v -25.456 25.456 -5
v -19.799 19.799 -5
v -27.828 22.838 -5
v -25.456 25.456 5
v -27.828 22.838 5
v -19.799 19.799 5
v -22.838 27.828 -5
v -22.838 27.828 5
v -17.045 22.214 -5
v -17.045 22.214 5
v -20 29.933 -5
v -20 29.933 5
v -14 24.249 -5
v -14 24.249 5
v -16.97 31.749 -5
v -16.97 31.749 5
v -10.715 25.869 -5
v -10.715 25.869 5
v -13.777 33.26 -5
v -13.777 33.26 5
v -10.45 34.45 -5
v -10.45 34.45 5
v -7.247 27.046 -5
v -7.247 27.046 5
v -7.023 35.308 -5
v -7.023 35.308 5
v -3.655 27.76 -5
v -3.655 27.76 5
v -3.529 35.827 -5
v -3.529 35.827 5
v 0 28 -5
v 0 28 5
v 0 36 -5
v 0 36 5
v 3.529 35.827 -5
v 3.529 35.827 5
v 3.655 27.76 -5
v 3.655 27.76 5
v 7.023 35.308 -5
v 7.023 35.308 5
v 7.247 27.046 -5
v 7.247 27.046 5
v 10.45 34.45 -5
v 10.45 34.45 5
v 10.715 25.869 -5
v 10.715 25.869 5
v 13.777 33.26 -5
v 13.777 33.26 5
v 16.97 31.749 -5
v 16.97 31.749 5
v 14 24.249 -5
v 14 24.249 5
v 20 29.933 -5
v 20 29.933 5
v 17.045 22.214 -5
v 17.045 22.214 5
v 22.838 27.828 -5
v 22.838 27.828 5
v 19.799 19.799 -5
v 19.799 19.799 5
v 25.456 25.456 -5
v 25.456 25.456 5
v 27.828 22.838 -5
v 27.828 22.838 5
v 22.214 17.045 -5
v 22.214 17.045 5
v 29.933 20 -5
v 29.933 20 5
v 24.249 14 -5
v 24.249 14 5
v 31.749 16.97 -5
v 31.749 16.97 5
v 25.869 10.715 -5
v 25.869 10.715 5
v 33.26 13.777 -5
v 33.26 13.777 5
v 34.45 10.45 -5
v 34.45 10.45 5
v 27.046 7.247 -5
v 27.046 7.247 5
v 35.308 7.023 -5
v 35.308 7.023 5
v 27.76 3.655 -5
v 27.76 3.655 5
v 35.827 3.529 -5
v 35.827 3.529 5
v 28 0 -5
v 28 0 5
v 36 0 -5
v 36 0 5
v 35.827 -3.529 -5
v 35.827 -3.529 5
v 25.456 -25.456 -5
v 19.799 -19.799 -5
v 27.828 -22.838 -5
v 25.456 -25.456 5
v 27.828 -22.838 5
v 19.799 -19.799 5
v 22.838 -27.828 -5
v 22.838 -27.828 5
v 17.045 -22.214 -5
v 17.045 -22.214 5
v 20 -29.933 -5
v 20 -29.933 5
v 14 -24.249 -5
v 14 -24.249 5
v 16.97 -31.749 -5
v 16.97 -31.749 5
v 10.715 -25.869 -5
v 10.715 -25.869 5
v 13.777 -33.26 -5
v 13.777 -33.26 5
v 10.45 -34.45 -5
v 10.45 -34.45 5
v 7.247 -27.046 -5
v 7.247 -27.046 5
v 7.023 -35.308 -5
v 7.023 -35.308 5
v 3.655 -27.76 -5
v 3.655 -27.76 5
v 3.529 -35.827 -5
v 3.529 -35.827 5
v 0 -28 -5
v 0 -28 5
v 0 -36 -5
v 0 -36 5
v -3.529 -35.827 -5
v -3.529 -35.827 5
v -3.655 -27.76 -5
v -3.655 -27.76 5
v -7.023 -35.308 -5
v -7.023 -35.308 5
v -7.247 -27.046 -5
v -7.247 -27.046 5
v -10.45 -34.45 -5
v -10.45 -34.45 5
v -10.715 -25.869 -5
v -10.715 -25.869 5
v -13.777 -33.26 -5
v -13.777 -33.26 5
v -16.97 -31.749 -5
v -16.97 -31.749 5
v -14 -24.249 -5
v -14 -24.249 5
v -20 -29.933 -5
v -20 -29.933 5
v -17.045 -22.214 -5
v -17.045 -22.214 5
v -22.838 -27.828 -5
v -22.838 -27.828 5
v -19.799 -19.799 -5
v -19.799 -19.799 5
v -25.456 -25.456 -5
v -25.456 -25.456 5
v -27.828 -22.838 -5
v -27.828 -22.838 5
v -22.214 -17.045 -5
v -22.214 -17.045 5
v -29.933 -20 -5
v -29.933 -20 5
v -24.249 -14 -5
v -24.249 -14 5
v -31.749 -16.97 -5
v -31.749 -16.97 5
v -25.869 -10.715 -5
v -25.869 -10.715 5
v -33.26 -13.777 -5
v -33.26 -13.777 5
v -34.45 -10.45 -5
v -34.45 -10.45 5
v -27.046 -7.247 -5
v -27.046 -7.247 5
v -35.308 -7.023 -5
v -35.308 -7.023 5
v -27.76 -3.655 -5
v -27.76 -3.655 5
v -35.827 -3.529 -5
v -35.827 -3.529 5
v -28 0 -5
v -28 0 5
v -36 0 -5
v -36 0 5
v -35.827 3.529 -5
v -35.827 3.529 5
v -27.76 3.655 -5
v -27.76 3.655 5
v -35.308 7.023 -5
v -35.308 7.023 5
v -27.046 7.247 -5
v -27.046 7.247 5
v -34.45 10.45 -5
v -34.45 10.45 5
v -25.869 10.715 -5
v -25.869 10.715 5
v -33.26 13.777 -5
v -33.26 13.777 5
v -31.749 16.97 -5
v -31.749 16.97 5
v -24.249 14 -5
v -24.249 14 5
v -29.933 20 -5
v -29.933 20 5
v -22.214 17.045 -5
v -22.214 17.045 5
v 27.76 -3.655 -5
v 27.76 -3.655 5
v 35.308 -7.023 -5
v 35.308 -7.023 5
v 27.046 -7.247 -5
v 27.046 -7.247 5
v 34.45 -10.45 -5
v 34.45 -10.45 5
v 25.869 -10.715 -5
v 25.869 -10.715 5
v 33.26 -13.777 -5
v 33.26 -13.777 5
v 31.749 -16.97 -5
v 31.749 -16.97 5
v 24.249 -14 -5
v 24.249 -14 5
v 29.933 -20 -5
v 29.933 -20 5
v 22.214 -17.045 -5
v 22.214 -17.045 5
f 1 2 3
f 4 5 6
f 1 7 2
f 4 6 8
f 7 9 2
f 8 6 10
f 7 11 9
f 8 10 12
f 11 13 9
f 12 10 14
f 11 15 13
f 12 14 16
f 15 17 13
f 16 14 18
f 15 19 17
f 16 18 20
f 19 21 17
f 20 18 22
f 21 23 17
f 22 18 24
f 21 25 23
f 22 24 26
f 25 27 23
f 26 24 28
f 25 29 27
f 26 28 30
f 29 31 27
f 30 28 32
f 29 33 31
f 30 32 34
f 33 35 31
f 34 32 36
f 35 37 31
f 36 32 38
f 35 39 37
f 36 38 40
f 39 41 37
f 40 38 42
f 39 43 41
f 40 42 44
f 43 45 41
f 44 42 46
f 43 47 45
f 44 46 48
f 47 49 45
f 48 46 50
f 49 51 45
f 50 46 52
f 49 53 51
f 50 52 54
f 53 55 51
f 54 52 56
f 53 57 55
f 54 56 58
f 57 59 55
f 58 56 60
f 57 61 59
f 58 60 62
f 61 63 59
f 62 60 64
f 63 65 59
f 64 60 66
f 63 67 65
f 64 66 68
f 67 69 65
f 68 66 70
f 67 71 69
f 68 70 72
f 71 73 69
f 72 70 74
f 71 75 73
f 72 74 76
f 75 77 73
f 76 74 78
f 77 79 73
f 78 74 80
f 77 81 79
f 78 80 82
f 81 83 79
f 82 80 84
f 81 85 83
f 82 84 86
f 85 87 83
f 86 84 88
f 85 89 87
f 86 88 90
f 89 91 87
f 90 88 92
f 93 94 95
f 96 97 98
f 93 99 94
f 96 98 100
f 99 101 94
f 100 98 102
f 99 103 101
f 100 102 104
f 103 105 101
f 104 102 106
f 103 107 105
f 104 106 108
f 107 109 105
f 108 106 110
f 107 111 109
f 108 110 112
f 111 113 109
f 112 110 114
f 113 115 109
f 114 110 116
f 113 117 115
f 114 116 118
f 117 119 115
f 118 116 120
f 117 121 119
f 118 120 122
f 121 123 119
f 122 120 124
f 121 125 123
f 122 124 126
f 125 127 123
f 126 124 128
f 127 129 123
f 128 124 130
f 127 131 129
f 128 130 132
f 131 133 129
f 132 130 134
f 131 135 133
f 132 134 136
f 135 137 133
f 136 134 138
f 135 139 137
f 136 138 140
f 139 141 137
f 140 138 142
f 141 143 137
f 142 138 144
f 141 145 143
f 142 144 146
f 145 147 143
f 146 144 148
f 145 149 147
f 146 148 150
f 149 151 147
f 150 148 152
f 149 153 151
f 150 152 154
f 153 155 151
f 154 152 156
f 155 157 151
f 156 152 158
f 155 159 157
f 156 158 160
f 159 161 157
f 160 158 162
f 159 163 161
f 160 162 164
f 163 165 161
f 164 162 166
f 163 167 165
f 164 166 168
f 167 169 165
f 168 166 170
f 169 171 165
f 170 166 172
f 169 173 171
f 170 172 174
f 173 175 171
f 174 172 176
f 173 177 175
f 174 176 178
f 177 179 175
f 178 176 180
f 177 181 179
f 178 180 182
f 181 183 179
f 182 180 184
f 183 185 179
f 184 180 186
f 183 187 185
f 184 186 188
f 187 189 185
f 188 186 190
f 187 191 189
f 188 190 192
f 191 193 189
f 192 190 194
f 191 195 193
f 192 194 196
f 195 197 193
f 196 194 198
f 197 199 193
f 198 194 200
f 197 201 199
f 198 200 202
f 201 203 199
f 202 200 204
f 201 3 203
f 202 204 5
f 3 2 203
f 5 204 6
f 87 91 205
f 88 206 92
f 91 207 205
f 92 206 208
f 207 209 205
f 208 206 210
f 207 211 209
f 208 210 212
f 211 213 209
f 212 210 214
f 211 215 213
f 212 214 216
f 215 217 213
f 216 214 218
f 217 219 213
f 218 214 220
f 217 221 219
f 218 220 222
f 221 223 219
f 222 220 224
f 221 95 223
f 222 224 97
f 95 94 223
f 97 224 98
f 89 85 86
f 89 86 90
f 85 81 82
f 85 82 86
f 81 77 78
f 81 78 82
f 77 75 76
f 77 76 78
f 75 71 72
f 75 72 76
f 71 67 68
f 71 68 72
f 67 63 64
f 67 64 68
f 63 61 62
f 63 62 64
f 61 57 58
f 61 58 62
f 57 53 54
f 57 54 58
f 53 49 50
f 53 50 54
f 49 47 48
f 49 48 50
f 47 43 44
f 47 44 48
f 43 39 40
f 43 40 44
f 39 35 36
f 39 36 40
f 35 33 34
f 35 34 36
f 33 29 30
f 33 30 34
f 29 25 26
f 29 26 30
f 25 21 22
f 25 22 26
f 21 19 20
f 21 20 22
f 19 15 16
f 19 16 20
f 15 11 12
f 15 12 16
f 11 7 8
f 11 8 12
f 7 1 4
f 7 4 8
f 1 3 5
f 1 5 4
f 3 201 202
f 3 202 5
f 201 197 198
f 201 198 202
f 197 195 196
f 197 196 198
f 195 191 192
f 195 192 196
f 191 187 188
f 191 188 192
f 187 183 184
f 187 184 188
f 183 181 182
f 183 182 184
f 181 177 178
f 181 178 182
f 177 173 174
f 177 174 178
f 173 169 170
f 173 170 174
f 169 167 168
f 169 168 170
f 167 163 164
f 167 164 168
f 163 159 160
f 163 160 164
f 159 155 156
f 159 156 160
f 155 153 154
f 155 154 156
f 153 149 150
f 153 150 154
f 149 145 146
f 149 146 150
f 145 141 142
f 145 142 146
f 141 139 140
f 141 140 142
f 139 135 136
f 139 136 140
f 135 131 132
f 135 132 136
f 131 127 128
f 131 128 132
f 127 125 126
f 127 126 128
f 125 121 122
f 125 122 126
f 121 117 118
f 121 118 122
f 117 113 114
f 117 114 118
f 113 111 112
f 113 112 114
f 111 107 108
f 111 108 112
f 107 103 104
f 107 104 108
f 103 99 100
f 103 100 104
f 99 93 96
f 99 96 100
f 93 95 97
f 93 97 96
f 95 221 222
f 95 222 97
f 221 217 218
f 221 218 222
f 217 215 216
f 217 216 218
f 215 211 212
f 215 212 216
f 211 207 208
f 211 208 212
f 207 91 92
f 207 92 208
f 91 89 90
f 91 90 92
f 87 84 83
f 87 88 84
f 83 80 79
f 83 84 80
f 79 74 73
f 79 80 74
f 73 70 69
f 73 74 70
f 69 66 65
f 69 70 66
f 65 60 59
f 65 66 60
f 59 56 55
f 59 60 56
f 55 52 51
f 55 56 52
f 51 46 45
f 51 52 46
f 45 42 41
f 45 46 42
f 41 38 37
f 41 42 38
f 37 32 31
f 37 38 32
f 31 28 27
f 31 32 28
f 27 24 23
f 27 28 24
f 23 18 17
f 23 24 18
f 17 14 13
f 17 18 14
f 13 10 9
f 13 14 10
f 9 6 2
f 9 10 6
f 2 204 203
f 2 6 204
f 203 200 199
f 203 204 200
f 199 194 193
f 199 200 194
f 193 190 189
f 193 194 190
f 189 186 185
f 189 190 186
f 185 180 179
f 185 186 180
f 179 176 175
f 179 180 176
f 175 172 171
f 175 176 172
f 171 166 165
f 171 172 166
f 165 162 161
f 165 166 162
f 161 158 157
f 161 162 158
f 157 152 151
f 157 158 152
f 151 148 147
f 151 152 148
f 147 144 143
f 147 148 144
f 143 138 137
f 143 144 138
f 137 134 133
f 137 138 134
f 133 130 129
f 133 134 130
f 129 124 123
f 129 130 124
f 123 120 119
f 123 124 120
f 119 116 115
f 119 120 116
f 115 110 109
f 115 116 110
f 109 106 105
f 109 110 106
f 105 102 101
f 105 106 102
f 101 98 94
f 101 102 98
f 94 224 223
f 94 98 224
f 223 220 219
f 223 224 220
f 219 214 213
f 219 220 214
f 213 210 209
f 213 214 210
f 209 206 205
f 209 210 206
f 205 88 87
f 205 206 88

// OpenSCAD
polyhedron(points=[[-25.455844, 25.455844, -5.0], [-27.828376, 22.838158, -5.0], [-19.79899, 19.79899, -5.0], [-25.455844, 25.455844, 5.0], [-27.828376, 22.838158, 5.0], [-19.79899, 19.79899, 5.0], [-22.838158, 27.828376, -5.0], [-22.838158, 27.828376, 5.0], [-17.04532, 22.213894, -5.0], [-17.04532, 22.213894, 5.0], [-20.000528, 29.932906, -5.0], [-20.000528, 29.932906, 5.0], [-14.0, 24.248711, -5.0], [-14.0, 24.248711, 5.0], [-16.970283, 31.749166, -5.0], [-16.970283, 31.749166, 5.0], [-10.715136, 25.868627, -5.0], [-10.715136, 25.868627, 5.0], [-13.776604, 33.259663, -5.0], [-13.776604, 33.259663, 5.0], [-10.450248, 34.449852, -5.0], [-10.450248, 34.449852, 5.0], [-7.246933, 27.045923, -5.0], [-7.246933, 27.045923, 5.0], [-7.023252, 35.30827, -5.0], [-7.023252, 35.30827, 5.0], [-3.654733, 27.760456, -5.0], [-3.654733, 27.760456, 5.0], [-3.528617, 35.82665, -5.0], [-3.528617, 35.82665, 5.0], [0.0, 28.0, -5.0], [0.0, 28.0, 5.0], [0.0, 36.0, -5.0], [0.0, 36.0, 5.0], [3.528617, 35.82665, -5.0], [3.528617, 35.82665, 5.0], [3.654733, 27.760456, -5.0], [3.654733, 27.760456, 5.0], [7.023252, 35.30827, -5.0], [7.023252, 35.30827, 5.0], [7.246933, 27.045923, -5.0], [7.246933, 27.045923, 5.0], [10.450248, 34.449852, -5.0], [10.450248, 34.449852, 5.0], [10.715136, 25.868627, -5.0], [10.715136, 25.868627, 5.0], [13.776604, 33.259663, -5.0], [13.776604, 33.259663, 5.0], [16.970283, 31.749166, -5.0], [16.970283, 31.749166, 5.0], [14.0, 24.248711, -5.0], [14.0, 24.248711, 5.0], [20.000528, 29.932906, -5.0], [20.000528, 29.932906, 5.0], [17.04532, 22.213894, -5.0], [17.04532, 22.213894, 5.0], [22.838158, 27.828376, -5.0], [22.838158, 27.828376, 5.0], [19.79899, 19.79899, -5.0], [19.79899, 19.79899, 5.0], [25.455844, 25.455844, -5.0], [25.455844, 25.455844, 5.0], [27.828376, 22.838158, -5.0], [27.828376, 22.838158, 5.0], [22.213894, 17.04532, -5.0], [22.213894, 17.04532, 5.0], [29.932906, 20.000528, -5.0], [29.932906, 20.000528, 5.0], [24.248711, 14.0, -5.0], [24.248711, 14.0, 5.0], [31.749166, 16.970283, -5.0], [31.749166, 16.970283, 5.0], [25.868627, 10.715136, -5.0], [25.868627, 10.715136, 5.0], [33.259663, 13.776604, -5.0], [33.259663, 13.776604, 5.0], [34.449852, 10.450248, -5.0], [34.449852, 10.450248, 5.0], [27.045923, 7.246933, -5.0], [27.045923, 7.246933, 5.0], [35.30827, 7.023252, -5.0], [35.30827, 7.023252, 5.0], [27.760456, 3.654733, -5.0], [27.760456, 3.654733, 5.0], [35.82665, 3.528617, -5.0], [35.82665, 3.528617, 5.0], [28.0, 0.0, -5.0], [28.0, 0.0, 5.0], [36.0, 0.0, -5.0], [36.0, 0.0, 5.0], [35.82665, -3.528617, -5.0], [35.82665, -3.528617, 5.0], [25.455844, -25.455844, -5.0], [27.828376, -22.838158, -5.0], [19.79899, -19.79899, -5.0], [25.455844, -25.455844, 5.0], [27.828376, -22.838158, 5.0], [19.79899, -19.79899, 5.0], [22.838158, -27.828376, -5.0], [22.838158, -27.828376, 5.0], [17.04532, -22.213894, -5.0], [17.04532, -22.213894, 5.0], [20.000528, -29.932906, -5.0], [20.000528, -29.932906, 5.0], [14.0, -24.248711, -5.0], [14.0, -24.248711, 5.0], [16.970283, -31.749166, -5.0], [16.970283, -31.749166, 5.0], [10.715136, -25.868627, -5.0], [10.715136, -25.868627, 5.0], [13.776604, -33.259663, -5.0], [13.776604, -33.259663, 5.0], [10.450248, -34.449852, -5.0], [10.450248, -34.449852, 5.0], [7.246933, -27.045923, -5.0], [7.246933, -27.045923, 5.0], [7.023252, -35.30827, -5.0], [7.023252, -35.30827, 5.0], [3.654733, -27.760456, -5.0], [3.654733, -27.760456, 5.0], [3.528617, -35.82665, -5.0], [3.528617, -35.82665, 5.0], [-0.0, -28.0, -5.0], [-0.0, -28.0, 5.0], [-0.0, -36.0, -5.0], [-0.0, -36.0, 5.0], [-3.528617, -35.82665, -5.0], [-3.528617, -35.82665, 5.0], [-3.654733, -27.760456, -5.0], [-3.654733, -27.760456, 5.0], [-7.023252, -35.30827, -5.0], [-7.023252, -35.30827, 5.0], [-7.246933, -27.045923, -5.0], [-7.246933, -27.045923, 5.0], [-10.450248, -34.449852, -5.0], [-10.450248, -34.449852, 5.0], [-10.715136, -25.868627, -5.0], [-10.715136, -25.868627, 5.0], [-13.776604, -33.259663, -5.0], [-13.776604, -33.259663, 5.0], [-16.970283, -31.749166, -5.0], [-16.970283, -31.749166, 5.0], [-14.0, -24.248711, -5.0], [-14.0, -24.248711, 5.0], [-20.000528, -29.932906, -5.0], [-20.000528, -29.932906, 5.0], [-17.04532, -22.213894, -5.0], [-17.04532, -22.213894, 5.0], [-22.838158, -27.828376, -5.0], [-22.838158, -27.828376, 5.0], [-19.79899, -19.79899, -5.0], [-19.79899, -19.79899, 5.0], [-25.455844, -25.455844, -5.0], [-25.455844, -25.455844, 5.0], [-27.828376, -22.838158, -5.0], [-27.828376, -22.838158, 5.0], [-22.213894, -17.04532, -5.0], [-22.213894, -17.04532, 5.0], [-29.932906, -20.000528, -5.0], [-29.932906, -20.000528, 5.0], [-24.248711, -14.0, -5.0], [-24.248711, -14.0, 5.0], [-31.749166, -16.970283, -5.0], [-31.749166, -16.970283, 5.0], [-25.868627, -10.715136, -5.0], [-25.868627, -10.715136, 5.0], [-33.259663, -13.776604, -5.0], [-33.259663, -13.776604, 5.0], [-34.449852, -10.450248, -5.0], [-34.449852, -10.450248, 5.0], [-27.045923, -7.246933, -5.0], [-27.045923, -7.246933, 5.0], [-35.30827, -7.023252, -5.0], [-35.30827, -7.023252, 5.0], [-27.760456, -3.654733, -5.0], [-27.760456, -3.654733, 5.0], [-35.82665, -3.528617, -5.0], [-35.82665, -3.528617, 5.0], [-28.0, 0.0, -5.0], [-28.0, 0.0, 5.0], [-36.0, 0.0, -5.0], [-36.0, 0.0, 5.0], [-35.82665, 3.528617, -5.0], [-35.82665, 3.528617, 5.0], [-27.760456, 3.654733, -5.0], [-27.760456, 3.654733, 5.0], [-35.30827, 7.023252, -5.0], [-35.30827, 7.023252, 5.0], [-27.045923, 7.246933, -5.0], [-27.045923, 7.246933, 5.0], [-34.449852, 10.450248, -5.0], [-34.449852, 10.450248, 5.0], [-25.868627, 10.715136, -5.0], [-25.868627, 10.715136, 5.0], [-33.259663, 13.776604, -5.0], [-33.259663, 13.776604, 5.0], [-31.749166, 16.970283, -5.0], [-31.749166, 16.970283, 5.0], [-24.248711, 14.0, -5.0], [-24.248711, 14.0, 5.0], [-29.932906, 20.000528, -5.0], [-29.932906, 20.000528, 5.0], [-22.213894, 17.04532, -5.0], [-22.213894, 17.04532, 5.0], [27.760456, -3.654733, -5.0], [27.760456, -3.654733, 5.0], [35.30827, -7.023252, -5.0], [35.30827, -7.023252, 5.0], [27.045923, -7.246933, -5.0], [27.045923, -7.246933, 5.0], [34.449852, -10.450248, -5.0], [34.449852, -10.450248, 5.0], [25.868627, -10.715136, -5.0], [25.868627, -10.715136, 5.0], [33.259663, -13.776604, -5.0], [33.259663, -13.776604, 5.0], [31.749166, -16.970283, -5.0], [31.749166, -16.970283, 5.0], [24.248711, -14.0, -5.0], [24.248711, -14.0, 5.0], [29.932906, -20.000528, -5.0], [29.932906, -20.000528, 5.0], [22.213894, -17.04532, -5.0], [22.213894, -17.04532, 5.0]], faces=[[0, 2, 1], [3, 4, 5], [0, 6, 2], [3, 5, 7], [6, 8, 2], [7, 5, 9], [6, 10, 8], [7, 9, 11], [10, 12, 8], [11, 9, 13], [10, 14, 12], [11, 13, 15], [14, 16, 12], [15, 13, 17], [14, 18, 16], [15, 17, 19], [18, 20, 16], [19, 17, 21], [20, 22, 16], [21, 17, 23], [20, 24, 22], [21, 23, 25], [24, 26, 22], [25, 23, 27], [24, 28, 26], [25, 27, 29], [28, 30, 26], [29, 27, 31], [28, 32, 30], [29, 31, 33], [32, 34, 30], [33, 31, 35], [34, 36, 30], [35, 31, 37], [34, 38, 36], [35, 37, 39], [38, 40, 36], [39, 37, 41], [38, 42, 40], [39, 41, 43], [42, 44, 40], [43, 41, 45], [42, 46, 44], [43, 45, 47], [46, 48, 44], [47, 45, 49], [48, 50, 44], [49, 45, 51], [48, 52, 50], [49, 51, 53], [52, 54, 50], [53, 51, 55], [52, 56, 54], [53, 55, 57], [56, 58, 54], [57, 55, 59], [56, 60, 58], [57, 59, 61], [60, 62, 58], [61, 59, 63], [62, 64, 58], [63, 59, 65], [62, 66, 64], [63, 65, 67], [66, 68, 64], [67, 65, 69], [66, 70, 68], [67, 69, 71], [70, 72, 68], [71, 69, 73], [70, 74, 72], [71, 73, 75], [74, 76, 72], [75, 73, 77], [76, 78, 72], [77, 73, 79], [76, 80, 78], [77, 79, 81], [80, 82, 78], [81, 79, 83], [80, 84, 82], [81, 83, 85], [84, 86, 82], [85, 83, 87], [84, 88, 86], [85, 87, 89], [88, 90, 86], [89, 87, 91], [92, 94, 93], [95, 96, 97], [92, 98, 94], [95, 97, 99], [98, 100, 94], [99, 97, 101], [98, 102, 100], [99, 101, 103], [102, 104, 100], [103, 101, 105], [102, 106, 104], [103, 105, 107], [106, 108, 104], [107, 105, 109], [106, 110, 108], [107, 109, 111], [110, 112, 108], [111, 109, 113], [112, 114, 108], [113, 109, 115], [112, 116, 114], [113, 115, 117], [116, 118, 114], [117, 115, 119], [116, 120, 118], [117, 119, 121], [120, 122, 118], [121, 119, 123], [120, 124, 122], [121, 123, 125], [124, 126, 122], [125, 123, 127], [126, 128, 122], [127, 123, 129], [126, 130, 128], [127, 129, 131], [130, 132, 128], [131, 129, 133], [130, 134, 132], [131, 133, 135], [134, 136, 132], [135, 133, 137], [134, 138, 136], [135, 137, 139], [138, 140, 136], [139, 137, 141], [140, 142, 136], [141, 137, 143], [140, 144, 142], [141, 143, 145], [144, 146, 142], [145, 143, 147], [144, 148, 146], [145, 147, 149], [148, 150, 146], [149, 147, 151], [148, 152, 150], [149, 151, 153], [152, 154, 150], [153, 151, 155], [154, 156, 150], [155, 151, 157], [154, 158, 156], [155, 157, 159], [158, 160, 156], [159, 157, 161], [158, 162, 160], [159, 161, 163], [162, 164, 160], [163, 161, 165], [162, 166, 164], [163, 165, 167], [166, 168, 164], [167, 165, 169], [168, 170, 164], [169, 165, 171], [168, 172, 170], [169, 171, 173], [172, 174, 170], [173, 171, 175], [172, 176, 174], [173, 175, 177], [176, 178, 174], [177, 175, 179], [176, 180, 178], [177, 179, 181], [180, 182, 178], [181, 179, 183], [182, 184, 178], [183, 179, 185], [182, 186, 184], [183, 185, 187], [186, 188, 184], [187, 185, 189], [186, 190, 188], [187, 189, 191], [190, 192, 188], [191, 189, 193], [190, 194, 192], [191, 193, 195], [194, 196, 192], [195, 193, 197], [196, 198, 192], [197, 193, 199], [196, 200, 198], [197, 199, 201], [200, 202, 198], [201, 199, 203], [200, 1, 202], [201, 203, 4], [1, 2, 202], [4, 203, 5], [86, 90, 204], [87, 205, 91], [90, 206, 204], [91, 205, 207], [206, 208, 204], [207, 205, 209], [206, 210, 208], [207, 209, 211], [210, 212, 208], [211, 209, 213], [210, 214, 212], [211, 213, 215], [214, 216, 212], [215, 213, 217], [216, 218, 212], [217, 213, 219], [216, 220, 218], [217, 219, 221], [220, 222, 218], [221, 219, 223], [220, 93, 222], [221, 223, 96], [93, 94, 222], [96, 223, 97], [88, 84, 85], [88, 85, 89], [84, 80, 81], [84, 81, 85], [80, 76, 77], [80, 77, 81], [76, 74, 75], [76, 75, 77], [74, 70, 71], [74, 71, 75], [70, 66, 67], [70, 67, 71], [66, 62, 63], [66, 63, 67], [62, 60, 61], [62, 61, 63], [60, 56, 57], [60, 57, 61], [56, 52, 53], [56, 53, 57], [52, 48, 49], [52, 49, 53], [48, 46, 47], [48, 47, 49], [46, 42, 43], [46, 43, 47], [42, 38, 39], [42, 39, 43], [38, 34, 35], [38, 35, 39], [34, 32, 33], [34, 33, 35], [32, 28, 29], [32, 29, 33], [28, 24, 25], [28, 25, 29], [24, 20, 21], [24, 21, 25], [20, 18, 19], [20, 19, 21], [18, 14, 15], [18, 15, 19], [14, 10, 11], [14, 11, 15], [10, 6, 7], [10, 7, 11], [6, 0, 3], [6, 3, 7], [0, 1, 4], [0, 4, 3], [1, 200, 201], [1, 201, 4], [200, 196, 197], [200, 197, 201], [196, 194, 195], [196, 195, 197], [194, 190, 191], [194, 191, 195], [190, 186, 187], [190, 187, 191], [186, 182, 183], [186, 183, 187], [182, 180, 181], [182, 181, 183], [180, 176, 177], [180, 177, 181], [176, 172, 173], [176, 173, 177], [172, 168, 169], [172, 169, 173], [168, 166, 167], [168, 167, 169], [166, 162, 163], [166, 163, 167], [162, 158, 159], [162, 159, 163], [158, 154, 155], [158, 155, 159], [154, 152, 153], [154, 153, 155], [152, 148, 149], [152, 149, 153], [148, 144, 145], [148, 145, 149], [144, 140, 141], [144, 141, 145], [140, 138, 139], [140, 139, 141], [138, 134, 135], [138, 135, 139], [134, 130, 131], [134, 131, 135], [130, 126, 127], [130, 127, 131], [126, 124, 125], [126, 125, 127], [124, 120, 121], [124, 121, 125], [120, 116, 117], [120, 117, 121], [116, 112, 113], [116, 113, 117], [112, 110, 111], [112, 111, 113], [110, 106, 107], [110, 107, 111], [106, 102, 103], [106, 103, 107], [102, 98, 99], [102, 99, 103], [98, 92, 95], [98, 95, 99], [92, 93, 96], [92, 96, 95], [93, 220, 221], [93, 221, 96], [220, 216, 217], [220, 217, 221], [216, 214, 215], [216, 215, 217], [214, 210, 211], [214, 211, 215], [210, 206, 207], [210, 207, 211], [206, 90, 91], [206, 91, 207], [90, 88, 89], [90, 89, 91], [86, 83, 82], [86, 87, 83], [82, 79, 78], [82, 83, 79], [78, 73, 72], [78, 79, 73], [72, 69, 68], [72, 73, 69], [68, 65, 64], [68, 69, 65], [64, 59, 58], [64, 65, 59], [58, 55, 54], [58, 59, 55], [54, 51, 50], [54, 55, 51], [50, 45, 44], [50, 51, 45], [44, 41, 40], [44, 45, 41], [40, 37, 36], [40, 41, 37], [36, 31, 30], [36, 37, 31], [30, 27, 26], [30, 31, 27], [26, 23, 22], [26, 27, 23], [22, 17, 16], [22, 23, 17], [16, 13, 12], [16, 17, 13], [12, 9, 8], [12, 13, 9], [8, 5, 2], [8, 9, 5], [2, 203, 202], [2, 5, 203], [202, 199, 198], [202, 203, 199], [198, 193, 192], [198, 199, 193], [192, 189, 188], [192, 193, 189], [188, 185, 184], [188, 189, 185], [184, 179, 178], [184, 185, 179], [178, 175, 174], [178, 179, 175], [174, 171, 170], [174, 175, 171], [170, 165, 164], [170, 171, 165], [164, 161, 160], [164, 165, 161], [160, 157, 156], [160, 161, 157], [156, 151, 150], [156, 157, 151], [150, 147, 146], [150, 151, 147], [146, 143, 142], [146, 147, 143], [142, 137, 136], [142, 143, 137], [136, 133, 132], [136, 137, 133], [132, 129, 128], [132, 133, 129], [128, 123, 122], [128, 129, 123], [122, 119, 118], [122, 123, 119], [118, 115, 114], [118, 119, 115], [114, 109, 108], [114, 115, 109], [108, 105, 104], [108, 109, 105], [104, 101, 100], [104, 105, 101], [100, 97, 94], [100, 101, 97], [94, 223, 222], [94, 97, 223], [222, 219, 218], [222, 223, 219], [218, 213, 212], [218, 219, 213], [212, 209, 208], [212, 213, 209], [208, 205, 204], [208, 209, 205], [204, 87, 86], [204, 205, 87]], convexity=20);
